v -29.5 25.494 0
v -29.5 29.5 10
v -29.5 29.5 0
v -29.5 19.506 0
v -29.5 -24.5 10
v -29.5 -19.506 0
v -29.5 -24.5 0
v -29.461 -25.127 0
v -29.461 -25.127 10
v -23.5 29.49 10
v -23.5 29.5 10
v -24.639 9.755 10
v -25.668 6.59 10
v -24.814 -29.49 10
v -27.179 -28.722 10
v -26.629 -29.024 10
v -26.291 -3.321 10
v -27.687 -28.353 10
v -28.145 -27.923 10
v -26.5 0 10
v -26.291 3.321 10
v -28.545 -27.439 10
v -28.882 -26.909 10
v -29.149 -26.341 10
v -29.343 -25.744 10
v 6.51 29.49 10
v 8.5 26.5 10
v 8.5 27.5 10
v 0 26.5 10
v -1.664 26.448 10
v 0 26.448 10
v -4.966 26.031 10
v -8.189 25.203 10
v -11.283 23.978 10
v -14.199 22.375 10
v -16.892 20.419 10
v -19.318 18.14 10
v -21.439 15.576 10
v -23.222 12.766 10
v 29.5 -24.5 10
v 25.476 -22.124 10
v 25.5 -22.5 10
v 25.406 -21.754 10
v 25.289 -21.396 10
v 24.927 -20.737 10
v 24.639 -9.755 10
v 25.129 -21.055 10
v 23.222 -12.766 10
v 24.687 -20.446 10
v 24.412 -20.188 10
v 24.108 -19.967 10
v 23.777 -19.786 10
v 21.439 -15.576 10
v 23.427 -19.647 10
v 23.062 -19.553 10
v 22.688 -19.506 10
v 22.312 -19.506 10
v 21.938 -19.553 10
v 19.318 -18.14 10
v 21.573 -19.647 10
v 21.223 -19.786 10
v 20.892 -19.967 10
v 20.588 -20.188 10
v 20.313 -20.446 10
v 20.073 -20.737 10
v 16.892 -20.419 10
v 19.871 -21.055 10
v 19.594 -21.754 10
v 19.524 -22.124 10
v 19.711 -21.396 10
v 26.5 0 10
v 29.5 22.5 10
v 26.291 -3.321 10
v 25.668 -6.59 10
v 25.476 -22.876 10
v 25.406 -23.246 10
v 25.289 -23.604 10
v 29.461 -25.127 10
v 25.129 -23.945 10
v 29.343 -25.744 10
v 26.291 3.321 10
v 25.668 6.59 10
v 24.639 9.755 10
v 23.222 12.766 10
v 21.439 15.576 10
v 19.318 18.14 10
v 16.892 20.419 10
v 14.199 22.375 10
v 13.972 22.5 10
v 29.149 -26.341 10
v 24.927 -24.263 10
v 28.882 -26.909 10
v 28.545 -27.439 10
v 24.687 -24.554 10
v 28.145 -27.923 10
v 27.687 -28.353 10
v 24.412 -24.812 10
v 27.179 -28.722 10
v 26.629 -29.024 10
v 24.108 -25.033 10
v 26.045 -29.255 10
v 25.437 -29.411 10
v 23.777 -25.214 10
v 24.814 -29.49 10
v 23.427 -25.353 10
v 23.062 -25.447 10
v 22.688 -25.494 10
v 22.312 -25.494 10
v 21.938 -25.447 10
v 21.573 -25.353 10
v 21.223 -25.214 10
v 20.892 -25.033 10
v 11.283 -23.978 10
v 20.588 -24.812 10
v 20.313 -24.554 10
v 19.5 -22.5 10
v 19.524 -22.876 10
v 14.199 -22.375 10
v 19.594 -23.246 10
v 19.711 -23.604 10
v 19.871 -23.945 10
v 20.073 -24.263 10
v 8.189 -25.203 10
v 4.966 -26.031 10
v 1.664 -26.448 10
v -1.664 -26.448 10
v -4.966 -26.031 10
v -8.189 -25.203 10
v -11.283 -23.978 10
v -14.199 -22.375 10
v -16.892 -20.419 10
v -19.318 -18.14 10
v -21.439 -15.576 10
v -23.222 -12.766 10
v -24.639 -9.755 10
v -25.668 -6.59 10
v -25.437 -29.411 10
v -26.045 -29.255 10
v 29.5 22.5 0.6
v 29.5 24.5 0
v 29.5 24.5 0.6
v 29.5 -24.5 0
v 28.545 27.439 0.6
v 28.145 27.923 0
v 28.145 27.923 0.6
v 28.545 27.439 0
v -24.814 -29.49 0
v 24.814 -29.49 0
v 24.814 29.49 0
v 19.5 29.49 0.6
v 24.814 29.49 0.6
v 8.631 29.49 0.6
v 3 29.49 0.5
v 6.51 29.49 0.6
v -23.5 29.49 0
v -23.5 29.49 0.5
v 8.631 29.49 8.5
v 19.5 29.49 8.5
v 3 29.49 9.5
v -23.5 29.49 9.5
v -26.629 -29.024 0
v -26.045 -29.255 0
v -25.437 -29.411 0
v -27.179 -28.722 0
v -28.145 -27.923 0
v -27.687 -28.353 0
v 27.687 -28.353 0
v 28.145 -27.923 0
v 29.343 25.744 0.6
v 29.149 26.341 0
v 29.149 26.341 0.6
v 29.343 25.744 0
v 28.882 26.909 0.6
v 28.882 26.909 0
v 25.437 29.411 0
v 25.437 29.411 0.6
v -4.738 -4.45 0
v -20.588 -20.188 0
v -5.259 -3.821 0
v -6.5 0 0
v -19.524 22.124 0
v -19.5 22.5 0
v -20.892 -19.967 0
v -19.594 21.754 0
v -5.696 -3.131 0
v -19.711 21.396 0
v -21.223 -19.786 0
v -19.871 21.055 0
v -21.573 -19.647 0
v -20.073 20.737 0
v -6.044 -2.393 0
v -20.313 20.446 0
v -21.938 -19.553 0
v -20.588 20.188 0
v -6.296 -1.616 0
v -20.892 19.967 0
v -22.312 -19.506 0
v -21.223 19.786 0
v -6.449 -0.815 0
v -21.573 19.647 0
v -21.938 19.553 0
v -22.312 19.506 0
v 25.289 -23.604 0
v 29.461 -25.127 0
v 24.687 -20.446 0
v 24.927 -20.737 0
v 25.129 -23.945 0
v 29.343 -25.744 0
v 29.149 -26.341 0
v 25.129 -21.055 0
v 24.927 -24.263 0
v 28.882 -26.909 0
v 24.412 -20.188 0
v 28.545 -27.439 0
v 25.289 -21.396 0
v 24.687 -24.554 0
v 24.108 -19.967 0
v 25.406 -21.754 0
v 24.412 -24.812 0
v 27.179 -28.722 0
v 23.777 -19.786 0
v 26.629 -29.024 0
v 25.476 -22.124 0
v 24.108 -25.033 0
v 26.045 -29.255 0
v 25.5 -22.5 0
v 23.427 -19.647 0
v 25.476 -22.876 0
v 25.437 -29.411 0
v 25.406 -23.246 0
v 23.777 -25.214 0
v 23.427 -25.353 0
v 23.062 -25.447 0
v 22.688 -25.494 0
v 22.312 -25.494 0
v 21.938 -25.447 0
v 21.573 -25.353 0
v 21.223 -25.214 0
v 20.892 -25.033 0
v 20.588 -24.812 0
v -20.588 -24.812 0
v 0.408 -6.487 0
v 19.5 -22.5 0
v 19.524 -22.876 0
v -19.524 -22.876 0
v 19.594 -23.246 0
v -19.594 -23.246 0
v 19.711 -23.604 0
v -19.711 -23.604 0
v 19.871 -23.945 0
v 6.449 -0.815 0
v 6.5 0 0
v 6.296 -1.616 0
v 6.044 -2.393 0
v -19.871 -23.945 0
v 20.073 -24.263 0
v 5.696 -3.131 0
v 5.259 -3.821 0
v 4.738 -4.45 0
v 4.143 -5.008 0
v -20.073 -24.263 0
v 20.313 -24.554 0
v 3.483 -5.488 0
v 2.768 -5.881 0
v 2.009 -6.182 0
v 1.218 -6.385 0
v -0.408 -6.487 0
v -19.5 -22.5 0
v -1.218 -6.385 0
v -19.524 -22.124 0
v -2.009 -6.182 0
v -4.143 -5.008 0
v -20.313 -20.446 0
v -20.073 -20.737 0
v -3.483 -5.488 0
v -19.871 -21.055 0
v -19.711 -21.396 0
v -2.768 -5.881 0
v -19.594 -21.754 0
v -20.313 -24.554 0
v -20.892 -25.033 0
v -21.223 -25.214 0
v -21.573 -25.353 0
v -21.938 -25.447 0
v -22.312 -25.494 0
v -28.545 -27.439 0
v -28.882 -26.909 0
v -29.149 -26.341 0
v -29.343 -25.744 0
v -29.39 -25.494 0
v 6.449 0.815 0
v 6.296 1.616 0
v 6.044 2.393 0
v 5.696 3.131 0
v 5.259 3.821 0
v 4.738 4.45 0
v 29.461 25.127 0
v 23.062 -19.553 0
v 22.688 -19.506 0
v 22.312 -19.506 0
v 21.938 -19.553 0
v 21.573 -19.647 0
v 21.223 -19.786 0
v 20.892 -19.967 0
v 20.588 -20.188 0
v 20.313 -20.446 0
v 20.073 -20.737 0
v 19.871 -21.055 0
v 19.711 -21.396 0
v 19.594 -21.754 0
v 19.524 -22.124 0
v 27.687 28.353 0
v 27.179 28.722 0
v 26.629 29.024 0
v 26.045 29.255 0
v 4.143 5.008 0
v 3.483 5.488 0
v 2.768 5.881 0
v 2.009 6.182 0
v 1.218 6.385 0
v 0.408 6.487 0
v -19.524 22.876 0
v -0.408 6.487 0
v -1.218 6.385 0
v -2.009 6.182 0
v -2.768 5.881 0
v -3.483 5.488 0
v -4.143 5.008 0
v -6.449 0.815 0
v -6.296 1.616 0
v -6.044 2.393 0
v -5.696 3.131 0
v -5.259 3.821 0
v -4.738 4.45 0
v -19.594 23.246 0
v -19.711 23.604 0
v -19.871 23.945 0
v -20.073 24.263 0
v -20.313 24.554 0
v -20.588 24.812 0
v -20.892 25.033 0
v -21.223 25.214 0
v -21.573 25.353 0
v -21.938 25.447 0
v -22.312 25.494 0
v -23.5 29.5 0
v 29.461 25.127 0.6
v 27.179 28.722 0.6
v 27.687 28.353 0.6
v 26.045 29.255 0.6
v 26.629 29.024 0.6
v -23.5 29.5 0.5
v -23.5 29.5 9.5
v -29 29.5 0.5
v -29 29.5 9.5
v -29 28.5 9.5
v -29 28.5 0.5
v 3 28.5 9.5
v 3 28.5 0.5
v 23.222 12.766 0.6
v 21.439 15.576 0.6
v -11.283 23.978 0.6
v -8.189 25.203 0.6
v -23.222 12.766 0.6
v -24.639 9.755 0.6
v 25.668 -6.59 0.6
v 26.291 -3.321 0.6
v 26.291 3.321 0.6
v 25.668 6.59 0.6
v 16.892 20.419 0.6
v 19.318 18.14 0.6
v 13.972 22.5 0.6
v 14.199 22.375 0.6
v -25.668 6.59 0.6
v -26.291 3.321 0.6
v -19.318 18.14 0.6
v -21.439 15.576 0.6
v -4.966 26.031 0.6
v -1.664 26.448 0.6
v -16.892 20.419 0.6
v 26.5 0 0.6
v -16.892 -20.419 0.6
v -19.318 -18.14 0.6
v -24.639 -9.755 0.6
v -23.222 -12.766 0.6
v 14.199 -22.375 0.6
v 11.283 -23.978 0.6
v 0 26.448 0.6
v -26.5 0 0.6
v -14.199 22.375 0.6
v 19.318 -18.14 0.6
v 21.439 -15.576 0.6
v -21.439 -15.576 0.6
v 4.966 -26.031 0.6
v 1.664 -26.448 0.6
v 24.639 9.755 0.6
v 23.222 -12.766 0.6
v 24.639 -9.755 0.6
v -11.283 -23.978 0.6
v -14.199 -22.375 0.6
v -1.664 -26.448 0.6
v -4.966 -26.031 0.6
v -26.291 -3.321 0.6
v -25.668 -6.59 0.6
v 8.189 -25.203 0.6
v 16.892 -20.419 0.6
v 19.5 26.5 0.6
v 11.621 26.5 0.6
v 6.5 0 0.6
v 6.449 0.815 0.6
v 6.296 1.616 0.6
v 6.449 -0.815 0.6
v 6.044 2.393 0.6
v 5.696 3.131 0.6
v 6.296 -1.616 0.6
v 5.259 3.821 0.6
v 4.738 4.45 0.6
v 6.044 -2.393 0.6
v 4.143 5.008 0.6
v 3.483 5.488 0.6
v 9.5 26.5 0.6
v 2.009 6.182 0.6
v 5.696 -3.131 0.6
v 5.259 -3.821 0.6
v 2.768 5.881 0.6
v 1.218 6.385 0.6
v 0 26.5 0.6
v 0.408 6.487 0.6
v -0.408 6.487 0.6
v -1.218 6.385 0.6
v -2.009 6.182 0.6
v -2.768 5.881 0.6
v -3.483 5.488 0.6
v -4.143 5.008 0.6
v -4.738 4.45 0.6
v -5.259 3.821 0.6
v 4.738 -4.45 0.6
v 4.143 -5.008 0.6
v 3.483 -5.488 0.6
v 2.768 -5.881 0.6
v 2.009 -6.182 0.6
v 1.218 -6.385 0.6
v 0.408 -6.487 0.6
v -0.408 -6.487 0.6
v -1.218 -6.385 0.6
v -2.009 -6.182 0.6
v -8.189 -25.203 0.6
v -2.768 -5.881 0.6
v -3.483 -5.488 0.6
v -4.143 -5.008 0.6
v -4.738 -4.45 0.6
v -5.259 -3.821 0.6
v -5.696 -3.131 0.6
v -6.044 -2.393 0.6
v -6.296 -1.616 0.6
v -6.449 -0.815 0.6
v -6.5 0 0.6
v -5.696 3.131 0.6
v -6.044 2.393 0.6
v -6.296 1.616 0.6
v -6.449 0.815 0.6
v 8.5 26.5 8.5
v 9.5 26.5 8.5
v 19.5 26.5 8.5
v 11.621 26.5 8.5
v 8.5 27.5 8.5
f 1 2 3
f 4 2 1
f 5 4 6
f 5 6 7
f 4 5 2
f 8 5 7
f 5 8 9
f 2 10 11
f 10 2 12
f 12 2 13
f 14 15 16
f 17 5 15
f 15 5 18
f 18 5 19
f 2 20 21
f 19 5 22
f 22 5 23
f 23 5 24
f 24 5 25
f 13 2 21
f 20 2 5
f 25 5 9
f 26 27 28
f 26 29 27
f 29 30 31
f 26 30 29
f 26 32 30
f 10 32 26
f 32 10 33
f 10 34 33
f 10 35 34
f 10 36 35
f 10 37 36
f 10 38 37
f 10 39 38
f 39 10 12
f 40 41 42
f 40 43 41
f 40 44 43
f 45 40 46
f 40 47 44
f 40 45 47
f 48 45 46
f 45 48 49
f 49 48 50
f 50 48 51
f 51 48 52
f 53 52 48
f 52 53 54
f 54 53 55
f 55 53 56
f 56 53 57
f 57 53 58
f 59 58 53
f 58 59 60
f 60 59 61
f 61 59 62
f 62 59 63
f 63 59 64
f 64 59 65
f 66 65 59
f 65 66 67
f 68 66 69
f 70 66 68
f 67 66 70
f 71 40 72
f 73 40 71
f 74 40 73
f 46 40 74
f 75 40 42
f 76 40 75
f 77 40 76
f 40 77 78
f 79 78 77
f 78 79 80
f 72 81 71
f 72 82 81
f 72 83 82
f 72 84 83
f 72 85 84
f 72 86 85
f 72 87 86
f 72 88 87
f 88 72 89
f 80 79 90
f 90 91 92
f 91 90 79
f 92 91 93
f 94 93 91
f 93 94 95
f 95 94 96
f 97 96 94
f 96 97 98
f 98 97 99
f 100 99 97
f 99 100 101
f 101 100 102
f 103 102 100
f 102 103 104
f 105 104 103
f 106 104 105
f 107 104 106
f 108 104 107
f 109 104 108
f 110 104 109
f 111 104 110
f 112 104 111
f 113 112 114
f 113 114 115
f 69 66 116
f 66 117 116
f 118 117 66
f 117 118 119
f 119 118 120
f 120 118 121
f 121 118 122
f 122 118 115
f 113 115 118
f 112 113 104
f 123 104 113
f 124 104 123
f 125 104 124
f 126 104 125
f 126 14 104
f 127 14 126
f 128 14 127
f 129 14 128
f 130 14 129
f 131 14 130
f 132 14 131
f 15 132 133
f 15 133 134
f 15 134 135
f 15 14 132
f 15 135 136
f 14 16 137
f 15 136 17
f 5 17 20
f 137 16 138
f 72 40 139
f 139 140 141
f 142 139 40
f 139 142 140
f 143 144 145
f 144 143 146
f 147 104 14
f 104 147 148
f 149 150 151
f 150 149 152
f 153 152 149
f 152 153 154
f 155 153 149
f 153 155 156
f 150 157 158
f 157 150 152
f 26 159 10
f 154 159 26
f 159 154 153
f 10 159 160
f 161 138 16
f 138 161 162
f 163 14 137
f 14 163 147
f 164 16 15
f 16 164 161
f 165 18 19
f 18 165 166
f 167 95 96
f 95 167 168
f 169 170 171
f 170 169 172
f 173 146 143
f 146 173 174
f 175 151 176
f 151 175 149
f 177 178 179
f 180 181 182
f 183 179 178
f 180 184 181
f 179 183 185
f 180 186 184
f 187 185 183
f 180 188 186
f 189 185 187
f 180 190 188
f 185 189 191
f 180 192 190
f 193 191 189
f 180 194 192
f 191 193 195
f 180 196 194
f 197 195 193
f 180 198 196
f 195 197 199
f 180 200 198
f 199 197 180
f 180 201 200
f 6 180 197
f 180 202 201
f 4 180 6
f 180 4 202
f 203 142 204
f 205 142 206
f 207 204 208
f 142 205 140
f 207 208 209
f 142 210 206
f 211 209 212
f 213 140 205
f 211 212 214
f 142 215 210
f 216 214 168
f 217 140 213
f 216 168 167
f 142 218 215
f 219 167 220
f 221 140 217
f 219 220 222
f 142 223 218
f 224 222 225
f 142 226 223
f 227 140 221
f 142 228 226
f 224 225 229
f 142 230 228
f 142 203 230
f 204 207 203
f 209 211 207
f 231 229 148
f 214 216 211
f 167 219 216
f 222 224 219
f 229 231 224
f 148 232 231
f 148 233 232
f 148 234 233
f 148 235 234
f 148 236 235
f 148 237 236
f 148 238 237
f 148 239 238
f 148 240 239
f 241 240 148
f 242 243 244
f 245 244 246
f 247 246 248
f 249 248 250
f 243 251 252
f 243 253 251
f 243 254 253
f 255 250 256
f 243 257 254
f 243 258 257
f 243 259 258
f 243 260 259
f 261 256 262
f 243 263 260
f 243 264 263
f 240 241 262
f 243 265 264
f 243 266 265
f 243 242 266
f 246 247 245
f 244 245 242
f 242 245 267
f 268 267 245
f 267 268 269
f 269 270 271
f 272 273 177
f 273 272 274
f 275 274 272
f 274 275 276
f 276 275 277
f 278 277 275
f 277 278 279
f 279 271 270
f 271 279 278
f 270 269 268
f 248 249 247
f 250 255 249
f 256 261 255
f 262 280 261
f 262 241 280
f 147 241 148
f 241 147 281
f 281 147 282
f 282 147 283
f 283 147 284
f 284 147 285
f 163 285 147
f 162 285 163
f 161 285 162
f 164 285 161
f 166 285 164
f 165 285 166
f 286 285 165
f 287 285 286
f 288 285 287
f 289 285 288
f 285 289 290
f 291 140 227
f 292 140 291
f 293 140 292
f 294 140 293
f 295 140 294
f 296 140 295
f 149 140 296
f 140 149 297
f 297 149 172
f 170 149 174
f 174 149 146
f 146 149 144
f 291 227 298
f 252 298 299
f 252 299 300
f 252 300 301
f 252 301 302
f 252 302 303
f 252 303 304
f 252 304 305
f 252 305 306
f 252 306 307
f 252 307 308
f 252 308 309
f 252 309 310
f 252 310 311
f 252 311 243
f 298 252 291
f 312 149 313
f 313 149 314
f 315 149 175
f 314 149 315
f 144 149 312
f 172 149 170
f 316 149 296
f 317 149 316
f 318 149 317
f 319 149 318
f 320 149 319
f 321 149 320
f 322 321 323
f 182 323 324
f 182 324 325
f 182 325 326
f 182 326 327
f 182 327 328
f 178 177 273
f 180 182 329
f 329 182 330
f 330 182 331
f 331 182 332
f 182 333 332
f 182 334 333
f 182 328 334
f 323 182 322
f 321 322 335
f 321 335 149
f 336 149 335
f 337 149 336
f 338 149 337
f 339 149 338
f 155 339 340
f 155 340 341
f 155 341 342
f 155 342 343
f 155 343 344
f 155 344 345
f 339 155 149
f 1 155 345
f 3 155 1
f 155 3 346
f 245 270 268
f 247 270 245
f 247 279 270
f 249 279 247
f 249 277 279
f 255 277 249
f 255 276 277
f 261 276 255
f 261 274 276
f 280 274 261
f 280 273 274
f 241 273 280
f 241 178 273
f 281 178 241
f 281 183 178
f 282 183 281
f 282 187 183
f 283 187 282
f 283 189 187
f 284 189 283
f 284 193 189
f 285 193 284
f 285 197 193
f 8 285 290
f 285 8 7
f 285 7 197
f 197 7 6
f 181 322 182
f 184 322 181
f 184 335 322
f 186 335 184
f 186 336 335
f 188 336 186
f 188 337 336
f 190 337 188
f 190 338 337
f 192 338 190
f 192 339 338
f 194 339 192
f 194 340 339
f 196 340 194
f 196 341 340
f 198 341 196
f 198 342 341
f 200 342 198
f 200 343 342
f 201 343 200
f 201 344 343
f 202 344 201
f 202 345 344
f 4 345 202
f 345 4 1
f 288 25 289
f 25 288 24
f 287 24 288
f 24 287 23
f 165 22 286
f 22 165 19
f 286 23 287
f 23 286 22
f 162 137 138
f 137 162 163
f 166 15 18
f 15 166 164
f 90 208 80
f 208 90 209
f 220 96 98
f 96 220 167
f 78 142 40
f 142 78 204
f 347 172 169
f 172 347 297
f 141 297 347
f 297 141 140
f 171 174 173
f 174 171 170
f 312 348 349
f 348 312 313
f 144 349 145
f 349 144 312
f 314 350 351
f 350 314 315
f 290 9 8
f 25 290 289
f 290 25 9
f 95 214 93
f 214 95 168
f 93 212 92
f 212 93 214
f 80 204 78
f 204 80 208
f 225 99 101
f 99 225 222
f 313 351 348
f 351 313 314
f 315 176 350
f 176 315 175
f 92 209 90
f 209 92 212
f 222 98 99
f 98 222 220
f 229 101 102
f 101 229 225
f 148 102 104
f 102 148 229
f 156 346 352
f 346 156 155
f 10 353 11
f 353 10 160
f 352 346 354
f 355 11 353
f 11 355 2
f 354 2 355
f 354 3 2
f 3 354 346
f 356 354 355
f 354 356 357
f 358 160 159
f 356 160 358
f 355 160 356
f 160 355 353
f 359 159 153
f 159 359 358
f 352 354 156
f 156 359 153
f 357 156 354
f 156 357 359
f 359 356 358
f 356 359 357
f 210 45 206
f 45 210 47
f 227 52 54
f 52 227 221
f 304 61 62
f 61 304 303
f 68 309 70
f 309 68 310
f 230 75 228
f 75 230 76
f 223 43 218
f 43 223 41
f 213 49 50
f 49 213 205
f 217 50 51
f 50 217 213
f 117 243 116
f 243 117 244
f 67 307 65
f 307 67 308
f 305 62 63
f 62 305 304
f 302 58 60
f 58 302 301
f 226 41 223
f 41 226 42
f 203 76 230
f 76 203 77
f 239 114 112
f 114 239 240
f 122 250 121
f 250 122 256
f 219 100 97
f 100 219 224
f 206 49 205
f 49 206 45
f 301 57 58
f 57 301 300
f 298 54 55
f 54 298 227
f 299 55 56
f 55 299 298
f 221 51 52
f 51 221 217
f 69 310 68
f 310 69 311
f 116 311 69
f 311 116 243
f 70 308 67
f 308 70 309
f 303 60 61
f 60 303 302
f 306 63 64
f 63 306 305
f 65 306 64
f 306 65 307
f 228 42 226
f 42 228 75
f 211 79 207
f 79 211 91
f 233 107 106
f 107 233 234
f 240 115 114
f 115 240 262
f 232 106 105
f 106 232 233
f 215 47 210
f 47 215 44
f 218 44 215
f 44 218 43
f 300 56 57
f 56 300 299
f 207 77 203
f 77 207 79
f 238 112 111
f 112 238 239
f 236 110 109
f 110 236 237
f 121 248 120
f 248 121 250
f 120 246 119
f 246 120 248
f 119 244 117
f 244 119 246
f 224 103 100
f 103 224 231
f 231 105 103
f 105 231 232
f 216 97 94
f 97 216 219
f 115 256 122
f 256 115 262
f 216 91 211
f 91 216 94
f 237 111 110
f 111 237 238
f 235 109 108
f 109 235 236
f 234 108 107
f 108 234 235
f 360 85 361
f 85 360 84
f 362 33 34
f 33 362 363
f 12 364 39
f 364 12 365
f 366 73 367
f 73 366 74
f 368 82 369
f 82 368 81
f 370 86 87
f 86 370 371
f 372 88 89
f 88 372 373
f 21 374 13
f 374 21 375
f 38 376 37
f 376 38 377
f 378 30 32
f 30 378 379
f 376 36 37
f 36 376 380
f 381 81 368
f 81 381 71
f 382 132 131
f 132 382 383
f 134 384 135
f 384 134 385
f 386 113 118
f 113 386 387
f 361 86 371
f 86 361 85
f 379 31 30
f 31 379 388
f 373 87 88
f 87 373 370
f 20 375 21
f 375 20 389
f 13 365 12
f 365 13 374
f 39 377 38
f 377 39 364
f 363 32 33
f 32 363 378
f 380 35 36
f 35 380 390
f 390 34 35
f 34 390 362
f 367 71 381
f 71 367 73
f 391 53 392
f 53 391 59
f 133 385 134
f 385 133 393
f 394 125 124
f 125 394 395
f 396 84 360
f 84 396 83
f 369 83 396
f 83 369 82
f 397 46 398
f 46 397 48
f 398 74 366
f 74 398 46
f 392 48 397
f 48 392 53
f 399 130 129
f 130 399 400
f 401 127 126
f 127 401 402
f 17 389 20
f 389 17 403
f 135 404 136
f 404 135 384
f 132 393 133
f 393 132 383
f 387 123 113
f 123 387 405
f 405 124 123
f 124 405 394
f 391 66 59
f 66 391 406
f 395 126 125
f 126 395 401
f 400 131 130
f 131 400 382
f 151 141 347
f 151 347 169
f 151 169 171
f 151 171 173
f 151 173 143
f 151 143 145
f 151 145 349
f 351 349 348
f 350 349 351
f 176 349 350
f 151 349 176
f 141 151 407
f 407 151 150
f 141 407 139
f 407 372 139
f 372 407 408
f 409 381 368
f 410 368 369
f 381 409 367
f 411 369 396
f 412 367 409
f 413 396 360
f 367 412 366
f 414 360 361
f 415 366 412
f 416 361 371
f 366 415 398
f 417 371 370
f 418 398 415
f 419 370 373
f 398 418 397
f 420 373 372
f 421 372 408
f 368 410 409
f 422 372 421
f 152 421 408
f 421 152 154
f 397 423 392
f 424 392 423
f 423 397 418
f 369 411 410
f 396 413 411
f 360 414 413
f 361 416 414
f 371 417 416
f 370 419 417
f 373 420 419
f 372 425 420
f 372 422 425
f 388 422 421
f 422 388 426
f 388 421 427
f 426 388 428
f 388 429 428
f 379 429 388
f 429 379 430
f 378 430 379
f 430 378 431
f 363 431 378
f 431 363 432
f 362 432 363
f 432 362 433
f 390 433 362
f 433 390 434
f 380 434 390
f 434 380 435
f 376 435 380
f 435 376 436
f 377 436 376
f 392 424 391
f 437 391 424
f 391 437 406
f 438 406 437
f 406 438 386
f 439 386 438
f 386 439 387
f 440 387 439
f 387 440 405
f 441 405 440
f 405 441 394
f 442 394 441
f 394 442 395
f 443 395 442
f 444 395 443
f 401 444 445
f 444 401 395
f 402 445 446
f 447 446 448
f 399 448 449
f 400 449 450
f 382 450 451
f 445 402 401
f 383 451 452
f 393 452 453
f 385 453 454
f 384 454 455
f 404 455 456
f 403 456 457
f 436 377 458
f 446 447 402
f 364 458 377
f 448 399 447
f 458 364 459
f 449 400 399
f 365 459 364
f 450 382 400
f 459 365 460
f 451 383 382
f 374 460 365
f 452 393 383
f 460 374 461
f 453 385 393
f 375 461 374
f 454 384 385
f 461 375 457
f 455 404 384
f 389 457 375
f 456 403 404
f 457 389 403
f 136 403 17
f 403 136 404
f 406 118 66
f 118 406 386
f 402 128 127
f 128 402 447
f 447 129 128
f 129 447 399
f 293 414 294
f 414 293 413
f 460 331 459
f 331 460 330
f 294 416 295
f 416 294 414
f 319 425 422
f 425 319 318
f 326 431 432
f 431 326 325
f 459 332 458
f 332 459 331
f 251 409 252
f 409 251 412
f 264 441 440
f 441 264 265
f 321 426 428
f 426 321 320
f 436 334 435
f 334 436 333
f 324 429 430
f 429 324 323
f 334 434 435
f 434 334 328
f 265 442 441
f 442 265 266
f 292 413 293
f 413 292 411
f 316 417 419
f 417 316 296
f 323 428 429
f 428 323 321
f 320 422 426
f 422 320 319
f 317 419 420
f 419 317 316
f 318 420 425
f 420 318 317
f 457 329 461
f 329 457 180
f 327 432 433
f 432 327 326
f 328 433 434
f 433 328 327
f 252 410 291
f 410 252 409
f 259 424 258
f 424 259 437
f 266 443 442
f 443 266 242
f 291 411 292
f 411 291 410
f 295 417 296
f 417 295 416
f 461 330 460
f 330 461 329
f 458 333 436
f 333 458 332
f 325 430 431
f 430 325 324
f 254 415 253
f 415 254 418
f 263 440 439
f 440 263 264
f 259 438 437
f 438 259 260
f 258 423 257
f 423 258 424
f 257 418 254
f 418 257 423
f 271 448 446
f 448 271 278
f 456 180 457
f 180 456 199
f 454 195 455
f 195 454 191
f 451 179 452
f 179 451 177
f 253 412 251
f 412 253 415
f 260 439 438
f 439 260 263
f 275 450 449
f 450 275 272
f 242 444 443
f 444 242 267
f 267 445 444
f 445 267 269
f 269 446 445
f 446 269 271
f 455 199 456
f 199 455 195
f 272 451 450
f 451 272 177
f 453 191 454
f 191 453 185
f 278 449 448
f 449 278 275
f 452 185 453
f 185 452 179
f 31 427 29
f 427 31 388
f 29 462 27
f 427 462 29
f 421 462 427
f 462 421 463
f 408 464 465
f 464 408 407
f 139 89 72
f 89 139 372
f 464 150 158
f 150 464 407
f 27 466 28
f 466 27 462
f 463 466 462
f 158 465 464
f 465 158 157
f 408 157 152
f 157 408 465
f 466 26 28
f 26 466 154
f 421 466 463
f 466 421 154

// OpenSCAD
$fn = 50;


difference() {
	union() {
		hull() {
			translate(v = [-24.5000000000, 24.5000000000, 0]) {
				cylinder(h = 10, r = 5);
			}
			translate(v = [24.5000000000, 24.5000000000, 0]) {
				cylinder(h = 10, r = 5);
			}
			translate(v = [-24.5000000000, -24.5000000000, 0]) {
				cylinder(h = 10, r = 5);
			}
			translate(v = [24.5000000000, -24.5000000000, 0]) {
				cylinder(h = 10, r = 5);
			}
		}
		translate(v = [-29.5000000000, 23.5000000000, 0]) {
			cube(size = [6, 6, 10]);
		}
	}
	union() {
		translate(v = [-30.0000000000, -22.5000000000, -250.0000000000]) {
			rotate(a = [0, 0, 0]) {
				difference() {
					union() {
						hull() {
							translate(v = [7.5000000000, 0, 0]) {
								cylinder(h = 250, r = 3.0000000000, r1 = 3.0000000000, r2 = 3.0000000000);
							}
							translate(v = [-7.5000000000, 0, 0]) {
								cylinder(h = 250, r = 3.0000000000, r1 = 3.0000000000, r2 = 3.0000000000);
							}
						}
					}
					union();
				}
			}
		}
		translate(v = [-30.0000000000, 22.5000000000, -250.0000000000]) {
			rotate(a = [0, 0, 0]) {
				difference() {
					union() {
						hull() {
							translate(v = [7.5000000000, 0, 0]) {
								cylinder(h = 250, r = 3.0000000000, r1 = 3.0000000000, r2 = 3.0000000000);
							}
							translate(v = [-7.5000000000, 0, 0]) {
								cylinder(h = 250, r = 3.0000000000, r1 = 3.0000000000, r2 = 3.0000000000);
							}
						}
					}
					union();
				}
			}
		}
		translate(v = [-29.0000000000, 28.5000000000, 0.5000000000]) {
			cube(size = [32, 1, 9.0000000000]);
		}
		translate(v = [22.5000000000, -22.5000000000, -50.0000000000]) {
			cylinder(h = 100, r = 3.0000000000);
		}
		translate(v = [0, 0, 0.6000000000]) {
			cylinder(h = 12.4000000000, r = 26.5000000000);
		}
		translate(v = [0, 0, -5.0000000000]) {
			cylinder(h = 10, r = 6.5000000000);
		}
		translate(v = [0.0000000000, 22.5000000000, 0.6000000000]) {
			cube(size = [29.5000000000, 4, 12.4000000000]);
		}
		translate(v = [19.5000000000, 22.5000000000, 0.6000000000]) {
			cube(size = [10, 7, 12.4000000000]);
		}
		translate(v = [8.5000000000, 22.5000000000, 8.5000000000]) {
			cube(size = [21, 7, 1.5000000000]);
		}
		translate(v = [5.7500000000, 30.2500000000, 0.6000000000]) {
			rotate(a = [0, 0, -45]) {
				cube(size = [7.5000000000, 1.5000000000, 12.4000000000]);
			}
		}
		translate(v = [5.0610000000, 20.5000000000, 0.6000000000]) {
			cube(size = [7.5000000000, 2, 9.4000000000]);
		}
	}
}
